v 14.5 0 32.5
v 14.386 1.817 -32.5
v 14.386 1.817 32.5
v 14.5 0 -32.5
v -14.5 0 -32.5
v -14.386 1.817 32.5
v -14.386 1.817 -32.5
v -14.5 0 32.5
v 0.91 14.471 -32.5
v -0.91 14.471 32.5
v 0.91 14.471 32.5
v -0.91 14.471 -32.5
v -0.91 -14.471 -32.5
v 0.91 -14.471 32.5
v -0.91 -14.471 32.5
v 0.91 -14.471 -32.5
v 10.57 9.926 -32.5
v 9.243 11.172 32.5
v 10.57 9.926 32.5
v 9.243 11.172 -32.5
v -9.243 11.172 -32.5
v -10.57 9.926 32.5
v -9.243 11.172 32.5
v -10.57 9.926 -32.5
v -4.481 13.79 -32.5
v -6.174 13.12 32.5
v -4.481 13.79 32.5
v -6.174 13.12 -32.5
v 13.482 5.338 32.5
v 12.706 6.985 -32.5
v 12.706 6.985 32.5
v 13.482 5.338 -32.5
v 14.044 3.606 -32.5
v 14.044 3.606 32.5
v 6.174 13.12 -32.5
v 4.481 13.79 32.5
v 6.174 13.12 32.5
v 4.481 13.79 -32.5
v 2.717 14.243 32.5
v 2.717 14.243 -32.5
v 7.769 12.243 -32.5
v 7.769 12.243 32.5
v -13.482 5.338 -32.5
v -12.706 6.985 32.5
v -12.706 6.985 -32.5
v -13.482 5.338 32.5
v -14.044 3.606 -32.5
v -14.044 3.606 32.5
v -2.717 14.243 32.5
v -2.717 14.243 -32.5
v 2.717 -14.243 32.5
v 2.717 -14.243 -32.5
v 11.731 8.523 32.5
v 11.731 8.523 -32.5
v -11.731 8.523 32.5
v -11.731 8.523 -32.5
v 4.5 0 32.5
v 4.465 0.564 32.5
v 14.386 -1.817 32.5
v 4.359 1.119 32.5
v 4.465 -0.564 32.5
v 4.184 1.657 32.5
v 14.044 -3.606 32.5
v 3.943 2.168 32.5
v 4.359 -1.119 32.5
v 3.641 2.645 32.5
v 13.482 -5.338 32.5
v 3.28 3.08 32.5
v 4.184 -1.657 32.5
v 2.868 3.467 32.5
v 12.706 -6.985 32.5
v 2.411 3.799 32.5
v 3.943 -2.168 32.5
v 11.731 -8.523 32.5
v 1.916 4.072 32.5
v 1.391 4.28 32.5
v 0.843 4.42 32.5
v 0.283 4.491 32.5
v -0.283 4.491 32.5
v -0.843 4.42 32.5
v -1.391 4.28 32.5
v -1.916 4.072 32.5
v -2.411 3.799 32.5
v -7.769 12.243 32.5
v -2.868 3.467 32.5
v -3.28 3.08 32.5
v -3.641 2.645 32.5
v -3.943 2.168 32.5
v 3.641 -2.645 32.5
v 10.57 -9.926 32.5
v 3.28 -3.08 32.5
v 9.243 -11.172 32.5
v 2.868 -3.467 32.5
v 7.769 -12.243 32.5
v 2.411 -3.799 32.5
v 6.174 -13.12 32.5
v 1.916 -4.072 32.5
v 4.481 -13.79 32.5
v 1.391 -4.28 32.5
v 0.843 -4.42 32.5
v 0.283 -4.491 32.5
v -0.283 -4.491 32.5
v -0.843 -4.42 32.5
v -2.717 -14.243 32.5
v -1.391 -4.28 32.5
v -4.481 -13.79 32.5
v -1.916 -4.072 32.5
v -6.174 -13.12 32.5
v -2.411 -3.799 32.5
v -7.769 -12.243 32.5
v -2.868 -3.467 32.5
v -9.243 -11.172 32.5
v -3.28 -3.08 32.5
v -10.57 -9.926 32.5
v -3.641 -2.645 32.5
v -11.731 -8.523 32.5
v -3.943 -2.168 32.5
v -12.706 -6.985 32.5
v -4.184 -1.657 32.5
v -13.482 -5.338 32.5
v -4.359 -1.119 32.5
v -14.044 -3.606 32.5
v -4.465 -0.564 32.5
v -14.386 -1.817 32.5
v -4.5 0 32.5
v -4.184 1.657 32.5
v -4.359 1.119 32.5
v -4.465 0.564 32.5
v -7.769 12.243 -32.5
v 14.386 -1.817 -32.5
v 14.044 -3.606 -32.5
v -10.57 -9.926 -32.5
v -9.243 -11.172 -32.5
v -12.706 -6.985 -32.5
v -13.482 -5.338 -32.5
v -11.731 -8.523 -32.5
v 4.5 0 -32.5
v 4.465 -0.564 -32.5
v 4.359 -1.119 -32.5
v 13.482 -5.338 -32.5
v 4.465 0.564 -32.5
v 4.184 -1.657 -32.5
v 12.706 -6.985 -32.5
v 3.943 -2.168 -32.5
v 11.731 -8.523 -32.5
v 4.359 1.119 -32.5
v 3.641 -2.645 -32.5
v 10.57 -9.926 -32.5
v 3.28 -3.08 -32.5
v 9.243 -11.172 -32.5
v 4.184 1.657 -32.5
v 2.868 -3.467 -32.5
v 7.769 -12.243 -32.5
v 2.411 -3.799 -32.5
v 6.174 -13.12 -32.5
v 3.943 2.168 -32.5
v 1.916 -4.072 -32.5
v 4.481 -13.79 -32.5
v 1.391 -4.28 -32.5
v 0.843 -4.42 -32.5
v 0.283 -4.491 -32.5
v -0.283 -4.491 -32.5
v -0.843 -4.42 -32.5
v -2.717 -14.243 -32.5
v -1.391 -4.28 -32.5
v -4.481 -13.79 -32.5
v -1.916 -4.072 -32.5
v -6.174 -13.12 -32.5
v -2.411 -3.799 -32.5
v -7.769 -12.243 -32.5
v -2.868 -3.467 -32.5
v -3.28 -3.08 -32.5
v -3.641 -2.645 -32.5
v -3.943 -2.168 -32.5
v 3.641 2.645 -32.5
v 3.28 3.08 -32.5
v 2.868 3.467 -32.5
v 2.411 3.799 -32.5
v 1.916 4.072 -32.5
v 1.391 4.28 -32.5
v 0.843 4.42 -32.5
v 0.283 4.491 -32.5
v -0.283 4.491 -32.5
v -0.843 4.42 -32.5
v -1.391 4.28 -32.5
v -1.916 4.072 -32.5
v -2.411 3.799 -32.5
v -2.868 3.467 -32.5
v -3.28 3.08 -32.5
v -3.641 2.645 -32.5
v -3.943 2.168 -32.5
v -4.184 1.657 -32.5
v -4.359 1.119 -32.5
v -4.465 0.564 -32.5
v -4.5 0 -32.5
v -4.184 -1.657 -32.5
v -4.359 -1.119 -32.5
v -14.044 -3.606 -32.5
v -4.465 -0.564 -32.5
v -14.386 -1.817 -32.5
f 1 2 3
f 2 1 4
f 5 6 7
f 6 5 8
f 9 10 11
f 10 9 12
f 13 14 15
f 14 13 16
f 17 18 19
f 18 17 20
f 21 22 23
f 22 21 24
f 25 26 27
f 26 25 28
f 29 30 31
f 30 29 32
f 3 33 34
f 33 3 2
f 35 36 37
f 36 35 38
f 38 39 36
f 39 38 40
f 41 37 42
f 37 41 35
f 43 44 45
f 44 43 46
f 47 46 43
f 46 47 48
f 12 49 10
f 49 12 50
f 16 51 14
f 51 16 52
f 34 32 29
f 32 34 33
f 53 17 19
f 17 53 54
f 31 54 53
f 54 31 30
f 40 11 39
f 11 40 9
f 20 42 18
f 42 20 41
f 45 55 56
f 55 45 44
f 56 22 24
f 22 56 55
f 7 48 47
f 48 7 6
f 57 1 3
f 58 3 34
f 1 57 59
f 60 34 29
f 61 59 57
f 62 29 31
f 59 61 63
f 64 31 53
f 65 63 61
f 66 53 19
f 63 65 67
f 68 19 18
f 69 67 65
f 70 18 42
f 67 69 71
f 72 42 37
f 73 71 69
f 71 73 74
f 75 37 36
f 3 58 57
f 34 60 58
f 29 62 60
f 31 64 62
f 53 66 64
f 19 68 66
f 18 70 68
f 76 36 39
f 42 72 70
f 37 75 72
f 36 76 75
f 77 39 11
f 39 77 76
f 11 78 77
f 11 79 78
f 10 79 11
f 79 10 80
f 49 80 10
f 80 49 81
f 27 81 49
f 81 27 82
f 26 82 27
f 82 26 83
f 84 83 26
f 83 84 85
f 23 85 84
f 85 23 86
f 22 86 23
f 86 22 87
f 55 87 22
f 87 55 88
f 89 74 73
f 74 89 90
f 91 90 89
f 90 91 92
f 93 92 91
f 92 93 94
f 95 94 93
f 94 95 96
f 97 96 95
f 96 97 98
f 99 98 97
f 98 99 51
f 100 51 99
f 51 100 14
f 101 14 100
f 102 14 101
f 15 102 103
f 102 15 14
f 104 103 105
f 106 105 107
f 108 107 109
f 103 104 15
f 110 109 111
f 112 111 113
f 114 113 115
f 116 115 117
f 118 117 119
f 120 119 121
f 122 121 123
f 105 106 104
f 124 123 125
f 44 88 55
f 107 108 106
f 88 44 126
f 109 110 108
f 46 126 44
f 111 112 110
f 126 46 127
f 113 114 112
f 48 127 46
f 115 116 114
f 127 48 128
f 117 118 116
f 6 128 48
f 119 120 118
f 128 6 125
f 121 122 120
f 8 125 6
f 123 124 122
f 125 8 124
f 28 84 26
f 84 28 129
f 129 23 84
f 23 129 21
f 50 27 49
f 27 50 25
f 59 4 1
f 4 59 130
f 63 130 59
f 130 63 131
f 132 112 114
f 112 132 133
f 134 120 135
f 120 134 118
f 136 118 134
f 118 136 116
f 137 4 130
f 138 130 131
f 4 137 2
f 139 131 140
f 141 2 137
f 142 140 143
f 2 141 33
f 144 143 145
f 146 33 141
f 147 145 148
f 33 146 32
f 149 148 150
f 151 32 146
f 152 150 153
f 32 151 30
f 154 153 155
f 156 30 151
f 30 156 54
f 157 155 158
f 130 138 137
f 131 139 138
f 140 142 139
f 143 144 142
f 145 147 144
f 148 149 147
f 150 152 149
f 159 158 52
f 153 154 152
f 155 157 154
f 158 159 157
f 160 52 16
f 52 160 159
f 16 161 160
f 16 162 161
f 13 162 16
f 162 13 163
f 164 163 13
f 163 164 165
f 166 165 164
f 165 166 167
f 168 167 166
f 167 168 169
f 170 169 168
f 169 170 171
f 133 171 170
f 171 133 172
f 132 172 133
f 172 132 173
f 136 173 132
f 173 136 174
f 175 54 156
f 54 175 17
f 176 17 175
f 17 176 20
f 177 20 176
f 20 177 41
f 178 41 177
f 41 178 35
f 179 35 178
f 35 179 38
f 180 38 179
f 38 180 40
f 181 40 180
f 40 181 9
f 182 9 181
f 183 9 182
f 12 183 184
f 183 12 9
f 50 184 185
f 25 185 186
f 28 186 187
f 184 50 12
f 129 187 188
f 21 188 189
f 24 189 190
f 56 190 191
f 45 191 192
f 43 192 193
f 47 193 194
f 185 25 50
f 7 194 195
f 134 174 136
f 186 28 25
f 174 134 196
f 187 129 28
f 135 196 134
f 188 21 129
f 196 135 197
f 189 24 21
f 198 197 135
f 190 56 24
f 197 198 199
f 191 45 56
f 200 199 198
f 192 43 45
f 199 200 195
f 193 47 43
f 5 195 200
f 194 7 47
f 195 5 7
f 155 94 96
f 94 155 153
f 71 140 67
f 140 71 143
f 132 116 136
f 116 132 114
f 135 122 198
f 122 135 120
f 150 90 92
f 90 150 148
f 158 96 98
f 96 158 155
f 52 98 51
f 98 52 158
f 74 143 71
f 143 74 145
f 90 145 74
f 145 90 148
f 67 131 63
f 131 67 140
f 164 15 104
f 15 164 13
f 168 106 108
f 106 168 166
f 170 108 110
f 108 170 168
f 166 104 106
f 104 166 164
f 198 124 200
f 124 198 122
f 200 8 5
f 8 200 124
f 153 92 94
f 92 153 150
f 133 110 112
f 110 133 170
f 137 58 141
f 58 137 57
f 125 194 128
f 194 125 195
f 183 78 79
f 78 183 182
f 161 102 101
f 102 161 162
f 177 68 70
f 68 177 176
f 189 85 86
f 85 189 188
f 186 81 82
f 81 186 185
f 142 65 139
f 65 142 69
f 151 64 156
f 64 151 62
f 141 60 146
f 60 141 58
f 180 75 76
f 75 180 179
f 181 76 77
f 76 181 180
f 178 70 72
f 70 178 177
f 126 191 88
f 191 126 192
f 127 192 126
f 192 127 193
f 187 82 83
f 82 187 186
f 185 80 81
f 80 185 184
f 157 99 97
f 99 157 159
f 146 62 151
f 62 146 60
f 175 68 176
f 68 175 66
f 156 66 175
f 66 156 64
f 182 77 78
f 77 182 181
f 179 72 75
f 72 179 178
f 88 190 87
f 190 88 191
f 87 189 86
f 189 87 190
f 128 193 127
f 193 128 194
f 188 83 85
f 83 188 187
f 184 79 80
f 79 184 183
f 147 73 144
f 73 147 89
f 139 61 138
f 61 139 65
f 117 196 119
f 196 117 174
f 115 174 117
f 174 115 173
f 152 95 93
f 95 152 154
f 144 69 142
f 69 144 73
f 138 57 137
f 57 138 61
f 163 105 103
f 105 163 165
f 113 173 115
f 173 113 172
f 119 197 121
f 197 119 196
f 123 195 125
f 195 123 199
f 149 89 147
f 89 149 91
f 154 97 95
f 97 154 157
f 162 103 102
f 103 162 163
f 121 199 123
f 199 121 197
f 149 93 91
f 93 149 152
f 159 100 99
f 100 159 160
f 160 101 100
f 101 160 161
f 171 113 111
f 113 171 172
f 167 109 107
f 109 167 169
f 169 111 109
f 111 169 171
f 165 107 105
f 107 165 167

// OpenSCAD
$fn = 50;


difference() {
	union() {
		translate(v = [0, 0, -32.5000000000]) {
			cylinder(h = 65, r = 14.5000000000);
		}
	}
	union() {
		translate(v = [0, 0, -100.0000000000]) {
			cylinder(h = 200, r = 4.5000000000);
		}
	}
}
